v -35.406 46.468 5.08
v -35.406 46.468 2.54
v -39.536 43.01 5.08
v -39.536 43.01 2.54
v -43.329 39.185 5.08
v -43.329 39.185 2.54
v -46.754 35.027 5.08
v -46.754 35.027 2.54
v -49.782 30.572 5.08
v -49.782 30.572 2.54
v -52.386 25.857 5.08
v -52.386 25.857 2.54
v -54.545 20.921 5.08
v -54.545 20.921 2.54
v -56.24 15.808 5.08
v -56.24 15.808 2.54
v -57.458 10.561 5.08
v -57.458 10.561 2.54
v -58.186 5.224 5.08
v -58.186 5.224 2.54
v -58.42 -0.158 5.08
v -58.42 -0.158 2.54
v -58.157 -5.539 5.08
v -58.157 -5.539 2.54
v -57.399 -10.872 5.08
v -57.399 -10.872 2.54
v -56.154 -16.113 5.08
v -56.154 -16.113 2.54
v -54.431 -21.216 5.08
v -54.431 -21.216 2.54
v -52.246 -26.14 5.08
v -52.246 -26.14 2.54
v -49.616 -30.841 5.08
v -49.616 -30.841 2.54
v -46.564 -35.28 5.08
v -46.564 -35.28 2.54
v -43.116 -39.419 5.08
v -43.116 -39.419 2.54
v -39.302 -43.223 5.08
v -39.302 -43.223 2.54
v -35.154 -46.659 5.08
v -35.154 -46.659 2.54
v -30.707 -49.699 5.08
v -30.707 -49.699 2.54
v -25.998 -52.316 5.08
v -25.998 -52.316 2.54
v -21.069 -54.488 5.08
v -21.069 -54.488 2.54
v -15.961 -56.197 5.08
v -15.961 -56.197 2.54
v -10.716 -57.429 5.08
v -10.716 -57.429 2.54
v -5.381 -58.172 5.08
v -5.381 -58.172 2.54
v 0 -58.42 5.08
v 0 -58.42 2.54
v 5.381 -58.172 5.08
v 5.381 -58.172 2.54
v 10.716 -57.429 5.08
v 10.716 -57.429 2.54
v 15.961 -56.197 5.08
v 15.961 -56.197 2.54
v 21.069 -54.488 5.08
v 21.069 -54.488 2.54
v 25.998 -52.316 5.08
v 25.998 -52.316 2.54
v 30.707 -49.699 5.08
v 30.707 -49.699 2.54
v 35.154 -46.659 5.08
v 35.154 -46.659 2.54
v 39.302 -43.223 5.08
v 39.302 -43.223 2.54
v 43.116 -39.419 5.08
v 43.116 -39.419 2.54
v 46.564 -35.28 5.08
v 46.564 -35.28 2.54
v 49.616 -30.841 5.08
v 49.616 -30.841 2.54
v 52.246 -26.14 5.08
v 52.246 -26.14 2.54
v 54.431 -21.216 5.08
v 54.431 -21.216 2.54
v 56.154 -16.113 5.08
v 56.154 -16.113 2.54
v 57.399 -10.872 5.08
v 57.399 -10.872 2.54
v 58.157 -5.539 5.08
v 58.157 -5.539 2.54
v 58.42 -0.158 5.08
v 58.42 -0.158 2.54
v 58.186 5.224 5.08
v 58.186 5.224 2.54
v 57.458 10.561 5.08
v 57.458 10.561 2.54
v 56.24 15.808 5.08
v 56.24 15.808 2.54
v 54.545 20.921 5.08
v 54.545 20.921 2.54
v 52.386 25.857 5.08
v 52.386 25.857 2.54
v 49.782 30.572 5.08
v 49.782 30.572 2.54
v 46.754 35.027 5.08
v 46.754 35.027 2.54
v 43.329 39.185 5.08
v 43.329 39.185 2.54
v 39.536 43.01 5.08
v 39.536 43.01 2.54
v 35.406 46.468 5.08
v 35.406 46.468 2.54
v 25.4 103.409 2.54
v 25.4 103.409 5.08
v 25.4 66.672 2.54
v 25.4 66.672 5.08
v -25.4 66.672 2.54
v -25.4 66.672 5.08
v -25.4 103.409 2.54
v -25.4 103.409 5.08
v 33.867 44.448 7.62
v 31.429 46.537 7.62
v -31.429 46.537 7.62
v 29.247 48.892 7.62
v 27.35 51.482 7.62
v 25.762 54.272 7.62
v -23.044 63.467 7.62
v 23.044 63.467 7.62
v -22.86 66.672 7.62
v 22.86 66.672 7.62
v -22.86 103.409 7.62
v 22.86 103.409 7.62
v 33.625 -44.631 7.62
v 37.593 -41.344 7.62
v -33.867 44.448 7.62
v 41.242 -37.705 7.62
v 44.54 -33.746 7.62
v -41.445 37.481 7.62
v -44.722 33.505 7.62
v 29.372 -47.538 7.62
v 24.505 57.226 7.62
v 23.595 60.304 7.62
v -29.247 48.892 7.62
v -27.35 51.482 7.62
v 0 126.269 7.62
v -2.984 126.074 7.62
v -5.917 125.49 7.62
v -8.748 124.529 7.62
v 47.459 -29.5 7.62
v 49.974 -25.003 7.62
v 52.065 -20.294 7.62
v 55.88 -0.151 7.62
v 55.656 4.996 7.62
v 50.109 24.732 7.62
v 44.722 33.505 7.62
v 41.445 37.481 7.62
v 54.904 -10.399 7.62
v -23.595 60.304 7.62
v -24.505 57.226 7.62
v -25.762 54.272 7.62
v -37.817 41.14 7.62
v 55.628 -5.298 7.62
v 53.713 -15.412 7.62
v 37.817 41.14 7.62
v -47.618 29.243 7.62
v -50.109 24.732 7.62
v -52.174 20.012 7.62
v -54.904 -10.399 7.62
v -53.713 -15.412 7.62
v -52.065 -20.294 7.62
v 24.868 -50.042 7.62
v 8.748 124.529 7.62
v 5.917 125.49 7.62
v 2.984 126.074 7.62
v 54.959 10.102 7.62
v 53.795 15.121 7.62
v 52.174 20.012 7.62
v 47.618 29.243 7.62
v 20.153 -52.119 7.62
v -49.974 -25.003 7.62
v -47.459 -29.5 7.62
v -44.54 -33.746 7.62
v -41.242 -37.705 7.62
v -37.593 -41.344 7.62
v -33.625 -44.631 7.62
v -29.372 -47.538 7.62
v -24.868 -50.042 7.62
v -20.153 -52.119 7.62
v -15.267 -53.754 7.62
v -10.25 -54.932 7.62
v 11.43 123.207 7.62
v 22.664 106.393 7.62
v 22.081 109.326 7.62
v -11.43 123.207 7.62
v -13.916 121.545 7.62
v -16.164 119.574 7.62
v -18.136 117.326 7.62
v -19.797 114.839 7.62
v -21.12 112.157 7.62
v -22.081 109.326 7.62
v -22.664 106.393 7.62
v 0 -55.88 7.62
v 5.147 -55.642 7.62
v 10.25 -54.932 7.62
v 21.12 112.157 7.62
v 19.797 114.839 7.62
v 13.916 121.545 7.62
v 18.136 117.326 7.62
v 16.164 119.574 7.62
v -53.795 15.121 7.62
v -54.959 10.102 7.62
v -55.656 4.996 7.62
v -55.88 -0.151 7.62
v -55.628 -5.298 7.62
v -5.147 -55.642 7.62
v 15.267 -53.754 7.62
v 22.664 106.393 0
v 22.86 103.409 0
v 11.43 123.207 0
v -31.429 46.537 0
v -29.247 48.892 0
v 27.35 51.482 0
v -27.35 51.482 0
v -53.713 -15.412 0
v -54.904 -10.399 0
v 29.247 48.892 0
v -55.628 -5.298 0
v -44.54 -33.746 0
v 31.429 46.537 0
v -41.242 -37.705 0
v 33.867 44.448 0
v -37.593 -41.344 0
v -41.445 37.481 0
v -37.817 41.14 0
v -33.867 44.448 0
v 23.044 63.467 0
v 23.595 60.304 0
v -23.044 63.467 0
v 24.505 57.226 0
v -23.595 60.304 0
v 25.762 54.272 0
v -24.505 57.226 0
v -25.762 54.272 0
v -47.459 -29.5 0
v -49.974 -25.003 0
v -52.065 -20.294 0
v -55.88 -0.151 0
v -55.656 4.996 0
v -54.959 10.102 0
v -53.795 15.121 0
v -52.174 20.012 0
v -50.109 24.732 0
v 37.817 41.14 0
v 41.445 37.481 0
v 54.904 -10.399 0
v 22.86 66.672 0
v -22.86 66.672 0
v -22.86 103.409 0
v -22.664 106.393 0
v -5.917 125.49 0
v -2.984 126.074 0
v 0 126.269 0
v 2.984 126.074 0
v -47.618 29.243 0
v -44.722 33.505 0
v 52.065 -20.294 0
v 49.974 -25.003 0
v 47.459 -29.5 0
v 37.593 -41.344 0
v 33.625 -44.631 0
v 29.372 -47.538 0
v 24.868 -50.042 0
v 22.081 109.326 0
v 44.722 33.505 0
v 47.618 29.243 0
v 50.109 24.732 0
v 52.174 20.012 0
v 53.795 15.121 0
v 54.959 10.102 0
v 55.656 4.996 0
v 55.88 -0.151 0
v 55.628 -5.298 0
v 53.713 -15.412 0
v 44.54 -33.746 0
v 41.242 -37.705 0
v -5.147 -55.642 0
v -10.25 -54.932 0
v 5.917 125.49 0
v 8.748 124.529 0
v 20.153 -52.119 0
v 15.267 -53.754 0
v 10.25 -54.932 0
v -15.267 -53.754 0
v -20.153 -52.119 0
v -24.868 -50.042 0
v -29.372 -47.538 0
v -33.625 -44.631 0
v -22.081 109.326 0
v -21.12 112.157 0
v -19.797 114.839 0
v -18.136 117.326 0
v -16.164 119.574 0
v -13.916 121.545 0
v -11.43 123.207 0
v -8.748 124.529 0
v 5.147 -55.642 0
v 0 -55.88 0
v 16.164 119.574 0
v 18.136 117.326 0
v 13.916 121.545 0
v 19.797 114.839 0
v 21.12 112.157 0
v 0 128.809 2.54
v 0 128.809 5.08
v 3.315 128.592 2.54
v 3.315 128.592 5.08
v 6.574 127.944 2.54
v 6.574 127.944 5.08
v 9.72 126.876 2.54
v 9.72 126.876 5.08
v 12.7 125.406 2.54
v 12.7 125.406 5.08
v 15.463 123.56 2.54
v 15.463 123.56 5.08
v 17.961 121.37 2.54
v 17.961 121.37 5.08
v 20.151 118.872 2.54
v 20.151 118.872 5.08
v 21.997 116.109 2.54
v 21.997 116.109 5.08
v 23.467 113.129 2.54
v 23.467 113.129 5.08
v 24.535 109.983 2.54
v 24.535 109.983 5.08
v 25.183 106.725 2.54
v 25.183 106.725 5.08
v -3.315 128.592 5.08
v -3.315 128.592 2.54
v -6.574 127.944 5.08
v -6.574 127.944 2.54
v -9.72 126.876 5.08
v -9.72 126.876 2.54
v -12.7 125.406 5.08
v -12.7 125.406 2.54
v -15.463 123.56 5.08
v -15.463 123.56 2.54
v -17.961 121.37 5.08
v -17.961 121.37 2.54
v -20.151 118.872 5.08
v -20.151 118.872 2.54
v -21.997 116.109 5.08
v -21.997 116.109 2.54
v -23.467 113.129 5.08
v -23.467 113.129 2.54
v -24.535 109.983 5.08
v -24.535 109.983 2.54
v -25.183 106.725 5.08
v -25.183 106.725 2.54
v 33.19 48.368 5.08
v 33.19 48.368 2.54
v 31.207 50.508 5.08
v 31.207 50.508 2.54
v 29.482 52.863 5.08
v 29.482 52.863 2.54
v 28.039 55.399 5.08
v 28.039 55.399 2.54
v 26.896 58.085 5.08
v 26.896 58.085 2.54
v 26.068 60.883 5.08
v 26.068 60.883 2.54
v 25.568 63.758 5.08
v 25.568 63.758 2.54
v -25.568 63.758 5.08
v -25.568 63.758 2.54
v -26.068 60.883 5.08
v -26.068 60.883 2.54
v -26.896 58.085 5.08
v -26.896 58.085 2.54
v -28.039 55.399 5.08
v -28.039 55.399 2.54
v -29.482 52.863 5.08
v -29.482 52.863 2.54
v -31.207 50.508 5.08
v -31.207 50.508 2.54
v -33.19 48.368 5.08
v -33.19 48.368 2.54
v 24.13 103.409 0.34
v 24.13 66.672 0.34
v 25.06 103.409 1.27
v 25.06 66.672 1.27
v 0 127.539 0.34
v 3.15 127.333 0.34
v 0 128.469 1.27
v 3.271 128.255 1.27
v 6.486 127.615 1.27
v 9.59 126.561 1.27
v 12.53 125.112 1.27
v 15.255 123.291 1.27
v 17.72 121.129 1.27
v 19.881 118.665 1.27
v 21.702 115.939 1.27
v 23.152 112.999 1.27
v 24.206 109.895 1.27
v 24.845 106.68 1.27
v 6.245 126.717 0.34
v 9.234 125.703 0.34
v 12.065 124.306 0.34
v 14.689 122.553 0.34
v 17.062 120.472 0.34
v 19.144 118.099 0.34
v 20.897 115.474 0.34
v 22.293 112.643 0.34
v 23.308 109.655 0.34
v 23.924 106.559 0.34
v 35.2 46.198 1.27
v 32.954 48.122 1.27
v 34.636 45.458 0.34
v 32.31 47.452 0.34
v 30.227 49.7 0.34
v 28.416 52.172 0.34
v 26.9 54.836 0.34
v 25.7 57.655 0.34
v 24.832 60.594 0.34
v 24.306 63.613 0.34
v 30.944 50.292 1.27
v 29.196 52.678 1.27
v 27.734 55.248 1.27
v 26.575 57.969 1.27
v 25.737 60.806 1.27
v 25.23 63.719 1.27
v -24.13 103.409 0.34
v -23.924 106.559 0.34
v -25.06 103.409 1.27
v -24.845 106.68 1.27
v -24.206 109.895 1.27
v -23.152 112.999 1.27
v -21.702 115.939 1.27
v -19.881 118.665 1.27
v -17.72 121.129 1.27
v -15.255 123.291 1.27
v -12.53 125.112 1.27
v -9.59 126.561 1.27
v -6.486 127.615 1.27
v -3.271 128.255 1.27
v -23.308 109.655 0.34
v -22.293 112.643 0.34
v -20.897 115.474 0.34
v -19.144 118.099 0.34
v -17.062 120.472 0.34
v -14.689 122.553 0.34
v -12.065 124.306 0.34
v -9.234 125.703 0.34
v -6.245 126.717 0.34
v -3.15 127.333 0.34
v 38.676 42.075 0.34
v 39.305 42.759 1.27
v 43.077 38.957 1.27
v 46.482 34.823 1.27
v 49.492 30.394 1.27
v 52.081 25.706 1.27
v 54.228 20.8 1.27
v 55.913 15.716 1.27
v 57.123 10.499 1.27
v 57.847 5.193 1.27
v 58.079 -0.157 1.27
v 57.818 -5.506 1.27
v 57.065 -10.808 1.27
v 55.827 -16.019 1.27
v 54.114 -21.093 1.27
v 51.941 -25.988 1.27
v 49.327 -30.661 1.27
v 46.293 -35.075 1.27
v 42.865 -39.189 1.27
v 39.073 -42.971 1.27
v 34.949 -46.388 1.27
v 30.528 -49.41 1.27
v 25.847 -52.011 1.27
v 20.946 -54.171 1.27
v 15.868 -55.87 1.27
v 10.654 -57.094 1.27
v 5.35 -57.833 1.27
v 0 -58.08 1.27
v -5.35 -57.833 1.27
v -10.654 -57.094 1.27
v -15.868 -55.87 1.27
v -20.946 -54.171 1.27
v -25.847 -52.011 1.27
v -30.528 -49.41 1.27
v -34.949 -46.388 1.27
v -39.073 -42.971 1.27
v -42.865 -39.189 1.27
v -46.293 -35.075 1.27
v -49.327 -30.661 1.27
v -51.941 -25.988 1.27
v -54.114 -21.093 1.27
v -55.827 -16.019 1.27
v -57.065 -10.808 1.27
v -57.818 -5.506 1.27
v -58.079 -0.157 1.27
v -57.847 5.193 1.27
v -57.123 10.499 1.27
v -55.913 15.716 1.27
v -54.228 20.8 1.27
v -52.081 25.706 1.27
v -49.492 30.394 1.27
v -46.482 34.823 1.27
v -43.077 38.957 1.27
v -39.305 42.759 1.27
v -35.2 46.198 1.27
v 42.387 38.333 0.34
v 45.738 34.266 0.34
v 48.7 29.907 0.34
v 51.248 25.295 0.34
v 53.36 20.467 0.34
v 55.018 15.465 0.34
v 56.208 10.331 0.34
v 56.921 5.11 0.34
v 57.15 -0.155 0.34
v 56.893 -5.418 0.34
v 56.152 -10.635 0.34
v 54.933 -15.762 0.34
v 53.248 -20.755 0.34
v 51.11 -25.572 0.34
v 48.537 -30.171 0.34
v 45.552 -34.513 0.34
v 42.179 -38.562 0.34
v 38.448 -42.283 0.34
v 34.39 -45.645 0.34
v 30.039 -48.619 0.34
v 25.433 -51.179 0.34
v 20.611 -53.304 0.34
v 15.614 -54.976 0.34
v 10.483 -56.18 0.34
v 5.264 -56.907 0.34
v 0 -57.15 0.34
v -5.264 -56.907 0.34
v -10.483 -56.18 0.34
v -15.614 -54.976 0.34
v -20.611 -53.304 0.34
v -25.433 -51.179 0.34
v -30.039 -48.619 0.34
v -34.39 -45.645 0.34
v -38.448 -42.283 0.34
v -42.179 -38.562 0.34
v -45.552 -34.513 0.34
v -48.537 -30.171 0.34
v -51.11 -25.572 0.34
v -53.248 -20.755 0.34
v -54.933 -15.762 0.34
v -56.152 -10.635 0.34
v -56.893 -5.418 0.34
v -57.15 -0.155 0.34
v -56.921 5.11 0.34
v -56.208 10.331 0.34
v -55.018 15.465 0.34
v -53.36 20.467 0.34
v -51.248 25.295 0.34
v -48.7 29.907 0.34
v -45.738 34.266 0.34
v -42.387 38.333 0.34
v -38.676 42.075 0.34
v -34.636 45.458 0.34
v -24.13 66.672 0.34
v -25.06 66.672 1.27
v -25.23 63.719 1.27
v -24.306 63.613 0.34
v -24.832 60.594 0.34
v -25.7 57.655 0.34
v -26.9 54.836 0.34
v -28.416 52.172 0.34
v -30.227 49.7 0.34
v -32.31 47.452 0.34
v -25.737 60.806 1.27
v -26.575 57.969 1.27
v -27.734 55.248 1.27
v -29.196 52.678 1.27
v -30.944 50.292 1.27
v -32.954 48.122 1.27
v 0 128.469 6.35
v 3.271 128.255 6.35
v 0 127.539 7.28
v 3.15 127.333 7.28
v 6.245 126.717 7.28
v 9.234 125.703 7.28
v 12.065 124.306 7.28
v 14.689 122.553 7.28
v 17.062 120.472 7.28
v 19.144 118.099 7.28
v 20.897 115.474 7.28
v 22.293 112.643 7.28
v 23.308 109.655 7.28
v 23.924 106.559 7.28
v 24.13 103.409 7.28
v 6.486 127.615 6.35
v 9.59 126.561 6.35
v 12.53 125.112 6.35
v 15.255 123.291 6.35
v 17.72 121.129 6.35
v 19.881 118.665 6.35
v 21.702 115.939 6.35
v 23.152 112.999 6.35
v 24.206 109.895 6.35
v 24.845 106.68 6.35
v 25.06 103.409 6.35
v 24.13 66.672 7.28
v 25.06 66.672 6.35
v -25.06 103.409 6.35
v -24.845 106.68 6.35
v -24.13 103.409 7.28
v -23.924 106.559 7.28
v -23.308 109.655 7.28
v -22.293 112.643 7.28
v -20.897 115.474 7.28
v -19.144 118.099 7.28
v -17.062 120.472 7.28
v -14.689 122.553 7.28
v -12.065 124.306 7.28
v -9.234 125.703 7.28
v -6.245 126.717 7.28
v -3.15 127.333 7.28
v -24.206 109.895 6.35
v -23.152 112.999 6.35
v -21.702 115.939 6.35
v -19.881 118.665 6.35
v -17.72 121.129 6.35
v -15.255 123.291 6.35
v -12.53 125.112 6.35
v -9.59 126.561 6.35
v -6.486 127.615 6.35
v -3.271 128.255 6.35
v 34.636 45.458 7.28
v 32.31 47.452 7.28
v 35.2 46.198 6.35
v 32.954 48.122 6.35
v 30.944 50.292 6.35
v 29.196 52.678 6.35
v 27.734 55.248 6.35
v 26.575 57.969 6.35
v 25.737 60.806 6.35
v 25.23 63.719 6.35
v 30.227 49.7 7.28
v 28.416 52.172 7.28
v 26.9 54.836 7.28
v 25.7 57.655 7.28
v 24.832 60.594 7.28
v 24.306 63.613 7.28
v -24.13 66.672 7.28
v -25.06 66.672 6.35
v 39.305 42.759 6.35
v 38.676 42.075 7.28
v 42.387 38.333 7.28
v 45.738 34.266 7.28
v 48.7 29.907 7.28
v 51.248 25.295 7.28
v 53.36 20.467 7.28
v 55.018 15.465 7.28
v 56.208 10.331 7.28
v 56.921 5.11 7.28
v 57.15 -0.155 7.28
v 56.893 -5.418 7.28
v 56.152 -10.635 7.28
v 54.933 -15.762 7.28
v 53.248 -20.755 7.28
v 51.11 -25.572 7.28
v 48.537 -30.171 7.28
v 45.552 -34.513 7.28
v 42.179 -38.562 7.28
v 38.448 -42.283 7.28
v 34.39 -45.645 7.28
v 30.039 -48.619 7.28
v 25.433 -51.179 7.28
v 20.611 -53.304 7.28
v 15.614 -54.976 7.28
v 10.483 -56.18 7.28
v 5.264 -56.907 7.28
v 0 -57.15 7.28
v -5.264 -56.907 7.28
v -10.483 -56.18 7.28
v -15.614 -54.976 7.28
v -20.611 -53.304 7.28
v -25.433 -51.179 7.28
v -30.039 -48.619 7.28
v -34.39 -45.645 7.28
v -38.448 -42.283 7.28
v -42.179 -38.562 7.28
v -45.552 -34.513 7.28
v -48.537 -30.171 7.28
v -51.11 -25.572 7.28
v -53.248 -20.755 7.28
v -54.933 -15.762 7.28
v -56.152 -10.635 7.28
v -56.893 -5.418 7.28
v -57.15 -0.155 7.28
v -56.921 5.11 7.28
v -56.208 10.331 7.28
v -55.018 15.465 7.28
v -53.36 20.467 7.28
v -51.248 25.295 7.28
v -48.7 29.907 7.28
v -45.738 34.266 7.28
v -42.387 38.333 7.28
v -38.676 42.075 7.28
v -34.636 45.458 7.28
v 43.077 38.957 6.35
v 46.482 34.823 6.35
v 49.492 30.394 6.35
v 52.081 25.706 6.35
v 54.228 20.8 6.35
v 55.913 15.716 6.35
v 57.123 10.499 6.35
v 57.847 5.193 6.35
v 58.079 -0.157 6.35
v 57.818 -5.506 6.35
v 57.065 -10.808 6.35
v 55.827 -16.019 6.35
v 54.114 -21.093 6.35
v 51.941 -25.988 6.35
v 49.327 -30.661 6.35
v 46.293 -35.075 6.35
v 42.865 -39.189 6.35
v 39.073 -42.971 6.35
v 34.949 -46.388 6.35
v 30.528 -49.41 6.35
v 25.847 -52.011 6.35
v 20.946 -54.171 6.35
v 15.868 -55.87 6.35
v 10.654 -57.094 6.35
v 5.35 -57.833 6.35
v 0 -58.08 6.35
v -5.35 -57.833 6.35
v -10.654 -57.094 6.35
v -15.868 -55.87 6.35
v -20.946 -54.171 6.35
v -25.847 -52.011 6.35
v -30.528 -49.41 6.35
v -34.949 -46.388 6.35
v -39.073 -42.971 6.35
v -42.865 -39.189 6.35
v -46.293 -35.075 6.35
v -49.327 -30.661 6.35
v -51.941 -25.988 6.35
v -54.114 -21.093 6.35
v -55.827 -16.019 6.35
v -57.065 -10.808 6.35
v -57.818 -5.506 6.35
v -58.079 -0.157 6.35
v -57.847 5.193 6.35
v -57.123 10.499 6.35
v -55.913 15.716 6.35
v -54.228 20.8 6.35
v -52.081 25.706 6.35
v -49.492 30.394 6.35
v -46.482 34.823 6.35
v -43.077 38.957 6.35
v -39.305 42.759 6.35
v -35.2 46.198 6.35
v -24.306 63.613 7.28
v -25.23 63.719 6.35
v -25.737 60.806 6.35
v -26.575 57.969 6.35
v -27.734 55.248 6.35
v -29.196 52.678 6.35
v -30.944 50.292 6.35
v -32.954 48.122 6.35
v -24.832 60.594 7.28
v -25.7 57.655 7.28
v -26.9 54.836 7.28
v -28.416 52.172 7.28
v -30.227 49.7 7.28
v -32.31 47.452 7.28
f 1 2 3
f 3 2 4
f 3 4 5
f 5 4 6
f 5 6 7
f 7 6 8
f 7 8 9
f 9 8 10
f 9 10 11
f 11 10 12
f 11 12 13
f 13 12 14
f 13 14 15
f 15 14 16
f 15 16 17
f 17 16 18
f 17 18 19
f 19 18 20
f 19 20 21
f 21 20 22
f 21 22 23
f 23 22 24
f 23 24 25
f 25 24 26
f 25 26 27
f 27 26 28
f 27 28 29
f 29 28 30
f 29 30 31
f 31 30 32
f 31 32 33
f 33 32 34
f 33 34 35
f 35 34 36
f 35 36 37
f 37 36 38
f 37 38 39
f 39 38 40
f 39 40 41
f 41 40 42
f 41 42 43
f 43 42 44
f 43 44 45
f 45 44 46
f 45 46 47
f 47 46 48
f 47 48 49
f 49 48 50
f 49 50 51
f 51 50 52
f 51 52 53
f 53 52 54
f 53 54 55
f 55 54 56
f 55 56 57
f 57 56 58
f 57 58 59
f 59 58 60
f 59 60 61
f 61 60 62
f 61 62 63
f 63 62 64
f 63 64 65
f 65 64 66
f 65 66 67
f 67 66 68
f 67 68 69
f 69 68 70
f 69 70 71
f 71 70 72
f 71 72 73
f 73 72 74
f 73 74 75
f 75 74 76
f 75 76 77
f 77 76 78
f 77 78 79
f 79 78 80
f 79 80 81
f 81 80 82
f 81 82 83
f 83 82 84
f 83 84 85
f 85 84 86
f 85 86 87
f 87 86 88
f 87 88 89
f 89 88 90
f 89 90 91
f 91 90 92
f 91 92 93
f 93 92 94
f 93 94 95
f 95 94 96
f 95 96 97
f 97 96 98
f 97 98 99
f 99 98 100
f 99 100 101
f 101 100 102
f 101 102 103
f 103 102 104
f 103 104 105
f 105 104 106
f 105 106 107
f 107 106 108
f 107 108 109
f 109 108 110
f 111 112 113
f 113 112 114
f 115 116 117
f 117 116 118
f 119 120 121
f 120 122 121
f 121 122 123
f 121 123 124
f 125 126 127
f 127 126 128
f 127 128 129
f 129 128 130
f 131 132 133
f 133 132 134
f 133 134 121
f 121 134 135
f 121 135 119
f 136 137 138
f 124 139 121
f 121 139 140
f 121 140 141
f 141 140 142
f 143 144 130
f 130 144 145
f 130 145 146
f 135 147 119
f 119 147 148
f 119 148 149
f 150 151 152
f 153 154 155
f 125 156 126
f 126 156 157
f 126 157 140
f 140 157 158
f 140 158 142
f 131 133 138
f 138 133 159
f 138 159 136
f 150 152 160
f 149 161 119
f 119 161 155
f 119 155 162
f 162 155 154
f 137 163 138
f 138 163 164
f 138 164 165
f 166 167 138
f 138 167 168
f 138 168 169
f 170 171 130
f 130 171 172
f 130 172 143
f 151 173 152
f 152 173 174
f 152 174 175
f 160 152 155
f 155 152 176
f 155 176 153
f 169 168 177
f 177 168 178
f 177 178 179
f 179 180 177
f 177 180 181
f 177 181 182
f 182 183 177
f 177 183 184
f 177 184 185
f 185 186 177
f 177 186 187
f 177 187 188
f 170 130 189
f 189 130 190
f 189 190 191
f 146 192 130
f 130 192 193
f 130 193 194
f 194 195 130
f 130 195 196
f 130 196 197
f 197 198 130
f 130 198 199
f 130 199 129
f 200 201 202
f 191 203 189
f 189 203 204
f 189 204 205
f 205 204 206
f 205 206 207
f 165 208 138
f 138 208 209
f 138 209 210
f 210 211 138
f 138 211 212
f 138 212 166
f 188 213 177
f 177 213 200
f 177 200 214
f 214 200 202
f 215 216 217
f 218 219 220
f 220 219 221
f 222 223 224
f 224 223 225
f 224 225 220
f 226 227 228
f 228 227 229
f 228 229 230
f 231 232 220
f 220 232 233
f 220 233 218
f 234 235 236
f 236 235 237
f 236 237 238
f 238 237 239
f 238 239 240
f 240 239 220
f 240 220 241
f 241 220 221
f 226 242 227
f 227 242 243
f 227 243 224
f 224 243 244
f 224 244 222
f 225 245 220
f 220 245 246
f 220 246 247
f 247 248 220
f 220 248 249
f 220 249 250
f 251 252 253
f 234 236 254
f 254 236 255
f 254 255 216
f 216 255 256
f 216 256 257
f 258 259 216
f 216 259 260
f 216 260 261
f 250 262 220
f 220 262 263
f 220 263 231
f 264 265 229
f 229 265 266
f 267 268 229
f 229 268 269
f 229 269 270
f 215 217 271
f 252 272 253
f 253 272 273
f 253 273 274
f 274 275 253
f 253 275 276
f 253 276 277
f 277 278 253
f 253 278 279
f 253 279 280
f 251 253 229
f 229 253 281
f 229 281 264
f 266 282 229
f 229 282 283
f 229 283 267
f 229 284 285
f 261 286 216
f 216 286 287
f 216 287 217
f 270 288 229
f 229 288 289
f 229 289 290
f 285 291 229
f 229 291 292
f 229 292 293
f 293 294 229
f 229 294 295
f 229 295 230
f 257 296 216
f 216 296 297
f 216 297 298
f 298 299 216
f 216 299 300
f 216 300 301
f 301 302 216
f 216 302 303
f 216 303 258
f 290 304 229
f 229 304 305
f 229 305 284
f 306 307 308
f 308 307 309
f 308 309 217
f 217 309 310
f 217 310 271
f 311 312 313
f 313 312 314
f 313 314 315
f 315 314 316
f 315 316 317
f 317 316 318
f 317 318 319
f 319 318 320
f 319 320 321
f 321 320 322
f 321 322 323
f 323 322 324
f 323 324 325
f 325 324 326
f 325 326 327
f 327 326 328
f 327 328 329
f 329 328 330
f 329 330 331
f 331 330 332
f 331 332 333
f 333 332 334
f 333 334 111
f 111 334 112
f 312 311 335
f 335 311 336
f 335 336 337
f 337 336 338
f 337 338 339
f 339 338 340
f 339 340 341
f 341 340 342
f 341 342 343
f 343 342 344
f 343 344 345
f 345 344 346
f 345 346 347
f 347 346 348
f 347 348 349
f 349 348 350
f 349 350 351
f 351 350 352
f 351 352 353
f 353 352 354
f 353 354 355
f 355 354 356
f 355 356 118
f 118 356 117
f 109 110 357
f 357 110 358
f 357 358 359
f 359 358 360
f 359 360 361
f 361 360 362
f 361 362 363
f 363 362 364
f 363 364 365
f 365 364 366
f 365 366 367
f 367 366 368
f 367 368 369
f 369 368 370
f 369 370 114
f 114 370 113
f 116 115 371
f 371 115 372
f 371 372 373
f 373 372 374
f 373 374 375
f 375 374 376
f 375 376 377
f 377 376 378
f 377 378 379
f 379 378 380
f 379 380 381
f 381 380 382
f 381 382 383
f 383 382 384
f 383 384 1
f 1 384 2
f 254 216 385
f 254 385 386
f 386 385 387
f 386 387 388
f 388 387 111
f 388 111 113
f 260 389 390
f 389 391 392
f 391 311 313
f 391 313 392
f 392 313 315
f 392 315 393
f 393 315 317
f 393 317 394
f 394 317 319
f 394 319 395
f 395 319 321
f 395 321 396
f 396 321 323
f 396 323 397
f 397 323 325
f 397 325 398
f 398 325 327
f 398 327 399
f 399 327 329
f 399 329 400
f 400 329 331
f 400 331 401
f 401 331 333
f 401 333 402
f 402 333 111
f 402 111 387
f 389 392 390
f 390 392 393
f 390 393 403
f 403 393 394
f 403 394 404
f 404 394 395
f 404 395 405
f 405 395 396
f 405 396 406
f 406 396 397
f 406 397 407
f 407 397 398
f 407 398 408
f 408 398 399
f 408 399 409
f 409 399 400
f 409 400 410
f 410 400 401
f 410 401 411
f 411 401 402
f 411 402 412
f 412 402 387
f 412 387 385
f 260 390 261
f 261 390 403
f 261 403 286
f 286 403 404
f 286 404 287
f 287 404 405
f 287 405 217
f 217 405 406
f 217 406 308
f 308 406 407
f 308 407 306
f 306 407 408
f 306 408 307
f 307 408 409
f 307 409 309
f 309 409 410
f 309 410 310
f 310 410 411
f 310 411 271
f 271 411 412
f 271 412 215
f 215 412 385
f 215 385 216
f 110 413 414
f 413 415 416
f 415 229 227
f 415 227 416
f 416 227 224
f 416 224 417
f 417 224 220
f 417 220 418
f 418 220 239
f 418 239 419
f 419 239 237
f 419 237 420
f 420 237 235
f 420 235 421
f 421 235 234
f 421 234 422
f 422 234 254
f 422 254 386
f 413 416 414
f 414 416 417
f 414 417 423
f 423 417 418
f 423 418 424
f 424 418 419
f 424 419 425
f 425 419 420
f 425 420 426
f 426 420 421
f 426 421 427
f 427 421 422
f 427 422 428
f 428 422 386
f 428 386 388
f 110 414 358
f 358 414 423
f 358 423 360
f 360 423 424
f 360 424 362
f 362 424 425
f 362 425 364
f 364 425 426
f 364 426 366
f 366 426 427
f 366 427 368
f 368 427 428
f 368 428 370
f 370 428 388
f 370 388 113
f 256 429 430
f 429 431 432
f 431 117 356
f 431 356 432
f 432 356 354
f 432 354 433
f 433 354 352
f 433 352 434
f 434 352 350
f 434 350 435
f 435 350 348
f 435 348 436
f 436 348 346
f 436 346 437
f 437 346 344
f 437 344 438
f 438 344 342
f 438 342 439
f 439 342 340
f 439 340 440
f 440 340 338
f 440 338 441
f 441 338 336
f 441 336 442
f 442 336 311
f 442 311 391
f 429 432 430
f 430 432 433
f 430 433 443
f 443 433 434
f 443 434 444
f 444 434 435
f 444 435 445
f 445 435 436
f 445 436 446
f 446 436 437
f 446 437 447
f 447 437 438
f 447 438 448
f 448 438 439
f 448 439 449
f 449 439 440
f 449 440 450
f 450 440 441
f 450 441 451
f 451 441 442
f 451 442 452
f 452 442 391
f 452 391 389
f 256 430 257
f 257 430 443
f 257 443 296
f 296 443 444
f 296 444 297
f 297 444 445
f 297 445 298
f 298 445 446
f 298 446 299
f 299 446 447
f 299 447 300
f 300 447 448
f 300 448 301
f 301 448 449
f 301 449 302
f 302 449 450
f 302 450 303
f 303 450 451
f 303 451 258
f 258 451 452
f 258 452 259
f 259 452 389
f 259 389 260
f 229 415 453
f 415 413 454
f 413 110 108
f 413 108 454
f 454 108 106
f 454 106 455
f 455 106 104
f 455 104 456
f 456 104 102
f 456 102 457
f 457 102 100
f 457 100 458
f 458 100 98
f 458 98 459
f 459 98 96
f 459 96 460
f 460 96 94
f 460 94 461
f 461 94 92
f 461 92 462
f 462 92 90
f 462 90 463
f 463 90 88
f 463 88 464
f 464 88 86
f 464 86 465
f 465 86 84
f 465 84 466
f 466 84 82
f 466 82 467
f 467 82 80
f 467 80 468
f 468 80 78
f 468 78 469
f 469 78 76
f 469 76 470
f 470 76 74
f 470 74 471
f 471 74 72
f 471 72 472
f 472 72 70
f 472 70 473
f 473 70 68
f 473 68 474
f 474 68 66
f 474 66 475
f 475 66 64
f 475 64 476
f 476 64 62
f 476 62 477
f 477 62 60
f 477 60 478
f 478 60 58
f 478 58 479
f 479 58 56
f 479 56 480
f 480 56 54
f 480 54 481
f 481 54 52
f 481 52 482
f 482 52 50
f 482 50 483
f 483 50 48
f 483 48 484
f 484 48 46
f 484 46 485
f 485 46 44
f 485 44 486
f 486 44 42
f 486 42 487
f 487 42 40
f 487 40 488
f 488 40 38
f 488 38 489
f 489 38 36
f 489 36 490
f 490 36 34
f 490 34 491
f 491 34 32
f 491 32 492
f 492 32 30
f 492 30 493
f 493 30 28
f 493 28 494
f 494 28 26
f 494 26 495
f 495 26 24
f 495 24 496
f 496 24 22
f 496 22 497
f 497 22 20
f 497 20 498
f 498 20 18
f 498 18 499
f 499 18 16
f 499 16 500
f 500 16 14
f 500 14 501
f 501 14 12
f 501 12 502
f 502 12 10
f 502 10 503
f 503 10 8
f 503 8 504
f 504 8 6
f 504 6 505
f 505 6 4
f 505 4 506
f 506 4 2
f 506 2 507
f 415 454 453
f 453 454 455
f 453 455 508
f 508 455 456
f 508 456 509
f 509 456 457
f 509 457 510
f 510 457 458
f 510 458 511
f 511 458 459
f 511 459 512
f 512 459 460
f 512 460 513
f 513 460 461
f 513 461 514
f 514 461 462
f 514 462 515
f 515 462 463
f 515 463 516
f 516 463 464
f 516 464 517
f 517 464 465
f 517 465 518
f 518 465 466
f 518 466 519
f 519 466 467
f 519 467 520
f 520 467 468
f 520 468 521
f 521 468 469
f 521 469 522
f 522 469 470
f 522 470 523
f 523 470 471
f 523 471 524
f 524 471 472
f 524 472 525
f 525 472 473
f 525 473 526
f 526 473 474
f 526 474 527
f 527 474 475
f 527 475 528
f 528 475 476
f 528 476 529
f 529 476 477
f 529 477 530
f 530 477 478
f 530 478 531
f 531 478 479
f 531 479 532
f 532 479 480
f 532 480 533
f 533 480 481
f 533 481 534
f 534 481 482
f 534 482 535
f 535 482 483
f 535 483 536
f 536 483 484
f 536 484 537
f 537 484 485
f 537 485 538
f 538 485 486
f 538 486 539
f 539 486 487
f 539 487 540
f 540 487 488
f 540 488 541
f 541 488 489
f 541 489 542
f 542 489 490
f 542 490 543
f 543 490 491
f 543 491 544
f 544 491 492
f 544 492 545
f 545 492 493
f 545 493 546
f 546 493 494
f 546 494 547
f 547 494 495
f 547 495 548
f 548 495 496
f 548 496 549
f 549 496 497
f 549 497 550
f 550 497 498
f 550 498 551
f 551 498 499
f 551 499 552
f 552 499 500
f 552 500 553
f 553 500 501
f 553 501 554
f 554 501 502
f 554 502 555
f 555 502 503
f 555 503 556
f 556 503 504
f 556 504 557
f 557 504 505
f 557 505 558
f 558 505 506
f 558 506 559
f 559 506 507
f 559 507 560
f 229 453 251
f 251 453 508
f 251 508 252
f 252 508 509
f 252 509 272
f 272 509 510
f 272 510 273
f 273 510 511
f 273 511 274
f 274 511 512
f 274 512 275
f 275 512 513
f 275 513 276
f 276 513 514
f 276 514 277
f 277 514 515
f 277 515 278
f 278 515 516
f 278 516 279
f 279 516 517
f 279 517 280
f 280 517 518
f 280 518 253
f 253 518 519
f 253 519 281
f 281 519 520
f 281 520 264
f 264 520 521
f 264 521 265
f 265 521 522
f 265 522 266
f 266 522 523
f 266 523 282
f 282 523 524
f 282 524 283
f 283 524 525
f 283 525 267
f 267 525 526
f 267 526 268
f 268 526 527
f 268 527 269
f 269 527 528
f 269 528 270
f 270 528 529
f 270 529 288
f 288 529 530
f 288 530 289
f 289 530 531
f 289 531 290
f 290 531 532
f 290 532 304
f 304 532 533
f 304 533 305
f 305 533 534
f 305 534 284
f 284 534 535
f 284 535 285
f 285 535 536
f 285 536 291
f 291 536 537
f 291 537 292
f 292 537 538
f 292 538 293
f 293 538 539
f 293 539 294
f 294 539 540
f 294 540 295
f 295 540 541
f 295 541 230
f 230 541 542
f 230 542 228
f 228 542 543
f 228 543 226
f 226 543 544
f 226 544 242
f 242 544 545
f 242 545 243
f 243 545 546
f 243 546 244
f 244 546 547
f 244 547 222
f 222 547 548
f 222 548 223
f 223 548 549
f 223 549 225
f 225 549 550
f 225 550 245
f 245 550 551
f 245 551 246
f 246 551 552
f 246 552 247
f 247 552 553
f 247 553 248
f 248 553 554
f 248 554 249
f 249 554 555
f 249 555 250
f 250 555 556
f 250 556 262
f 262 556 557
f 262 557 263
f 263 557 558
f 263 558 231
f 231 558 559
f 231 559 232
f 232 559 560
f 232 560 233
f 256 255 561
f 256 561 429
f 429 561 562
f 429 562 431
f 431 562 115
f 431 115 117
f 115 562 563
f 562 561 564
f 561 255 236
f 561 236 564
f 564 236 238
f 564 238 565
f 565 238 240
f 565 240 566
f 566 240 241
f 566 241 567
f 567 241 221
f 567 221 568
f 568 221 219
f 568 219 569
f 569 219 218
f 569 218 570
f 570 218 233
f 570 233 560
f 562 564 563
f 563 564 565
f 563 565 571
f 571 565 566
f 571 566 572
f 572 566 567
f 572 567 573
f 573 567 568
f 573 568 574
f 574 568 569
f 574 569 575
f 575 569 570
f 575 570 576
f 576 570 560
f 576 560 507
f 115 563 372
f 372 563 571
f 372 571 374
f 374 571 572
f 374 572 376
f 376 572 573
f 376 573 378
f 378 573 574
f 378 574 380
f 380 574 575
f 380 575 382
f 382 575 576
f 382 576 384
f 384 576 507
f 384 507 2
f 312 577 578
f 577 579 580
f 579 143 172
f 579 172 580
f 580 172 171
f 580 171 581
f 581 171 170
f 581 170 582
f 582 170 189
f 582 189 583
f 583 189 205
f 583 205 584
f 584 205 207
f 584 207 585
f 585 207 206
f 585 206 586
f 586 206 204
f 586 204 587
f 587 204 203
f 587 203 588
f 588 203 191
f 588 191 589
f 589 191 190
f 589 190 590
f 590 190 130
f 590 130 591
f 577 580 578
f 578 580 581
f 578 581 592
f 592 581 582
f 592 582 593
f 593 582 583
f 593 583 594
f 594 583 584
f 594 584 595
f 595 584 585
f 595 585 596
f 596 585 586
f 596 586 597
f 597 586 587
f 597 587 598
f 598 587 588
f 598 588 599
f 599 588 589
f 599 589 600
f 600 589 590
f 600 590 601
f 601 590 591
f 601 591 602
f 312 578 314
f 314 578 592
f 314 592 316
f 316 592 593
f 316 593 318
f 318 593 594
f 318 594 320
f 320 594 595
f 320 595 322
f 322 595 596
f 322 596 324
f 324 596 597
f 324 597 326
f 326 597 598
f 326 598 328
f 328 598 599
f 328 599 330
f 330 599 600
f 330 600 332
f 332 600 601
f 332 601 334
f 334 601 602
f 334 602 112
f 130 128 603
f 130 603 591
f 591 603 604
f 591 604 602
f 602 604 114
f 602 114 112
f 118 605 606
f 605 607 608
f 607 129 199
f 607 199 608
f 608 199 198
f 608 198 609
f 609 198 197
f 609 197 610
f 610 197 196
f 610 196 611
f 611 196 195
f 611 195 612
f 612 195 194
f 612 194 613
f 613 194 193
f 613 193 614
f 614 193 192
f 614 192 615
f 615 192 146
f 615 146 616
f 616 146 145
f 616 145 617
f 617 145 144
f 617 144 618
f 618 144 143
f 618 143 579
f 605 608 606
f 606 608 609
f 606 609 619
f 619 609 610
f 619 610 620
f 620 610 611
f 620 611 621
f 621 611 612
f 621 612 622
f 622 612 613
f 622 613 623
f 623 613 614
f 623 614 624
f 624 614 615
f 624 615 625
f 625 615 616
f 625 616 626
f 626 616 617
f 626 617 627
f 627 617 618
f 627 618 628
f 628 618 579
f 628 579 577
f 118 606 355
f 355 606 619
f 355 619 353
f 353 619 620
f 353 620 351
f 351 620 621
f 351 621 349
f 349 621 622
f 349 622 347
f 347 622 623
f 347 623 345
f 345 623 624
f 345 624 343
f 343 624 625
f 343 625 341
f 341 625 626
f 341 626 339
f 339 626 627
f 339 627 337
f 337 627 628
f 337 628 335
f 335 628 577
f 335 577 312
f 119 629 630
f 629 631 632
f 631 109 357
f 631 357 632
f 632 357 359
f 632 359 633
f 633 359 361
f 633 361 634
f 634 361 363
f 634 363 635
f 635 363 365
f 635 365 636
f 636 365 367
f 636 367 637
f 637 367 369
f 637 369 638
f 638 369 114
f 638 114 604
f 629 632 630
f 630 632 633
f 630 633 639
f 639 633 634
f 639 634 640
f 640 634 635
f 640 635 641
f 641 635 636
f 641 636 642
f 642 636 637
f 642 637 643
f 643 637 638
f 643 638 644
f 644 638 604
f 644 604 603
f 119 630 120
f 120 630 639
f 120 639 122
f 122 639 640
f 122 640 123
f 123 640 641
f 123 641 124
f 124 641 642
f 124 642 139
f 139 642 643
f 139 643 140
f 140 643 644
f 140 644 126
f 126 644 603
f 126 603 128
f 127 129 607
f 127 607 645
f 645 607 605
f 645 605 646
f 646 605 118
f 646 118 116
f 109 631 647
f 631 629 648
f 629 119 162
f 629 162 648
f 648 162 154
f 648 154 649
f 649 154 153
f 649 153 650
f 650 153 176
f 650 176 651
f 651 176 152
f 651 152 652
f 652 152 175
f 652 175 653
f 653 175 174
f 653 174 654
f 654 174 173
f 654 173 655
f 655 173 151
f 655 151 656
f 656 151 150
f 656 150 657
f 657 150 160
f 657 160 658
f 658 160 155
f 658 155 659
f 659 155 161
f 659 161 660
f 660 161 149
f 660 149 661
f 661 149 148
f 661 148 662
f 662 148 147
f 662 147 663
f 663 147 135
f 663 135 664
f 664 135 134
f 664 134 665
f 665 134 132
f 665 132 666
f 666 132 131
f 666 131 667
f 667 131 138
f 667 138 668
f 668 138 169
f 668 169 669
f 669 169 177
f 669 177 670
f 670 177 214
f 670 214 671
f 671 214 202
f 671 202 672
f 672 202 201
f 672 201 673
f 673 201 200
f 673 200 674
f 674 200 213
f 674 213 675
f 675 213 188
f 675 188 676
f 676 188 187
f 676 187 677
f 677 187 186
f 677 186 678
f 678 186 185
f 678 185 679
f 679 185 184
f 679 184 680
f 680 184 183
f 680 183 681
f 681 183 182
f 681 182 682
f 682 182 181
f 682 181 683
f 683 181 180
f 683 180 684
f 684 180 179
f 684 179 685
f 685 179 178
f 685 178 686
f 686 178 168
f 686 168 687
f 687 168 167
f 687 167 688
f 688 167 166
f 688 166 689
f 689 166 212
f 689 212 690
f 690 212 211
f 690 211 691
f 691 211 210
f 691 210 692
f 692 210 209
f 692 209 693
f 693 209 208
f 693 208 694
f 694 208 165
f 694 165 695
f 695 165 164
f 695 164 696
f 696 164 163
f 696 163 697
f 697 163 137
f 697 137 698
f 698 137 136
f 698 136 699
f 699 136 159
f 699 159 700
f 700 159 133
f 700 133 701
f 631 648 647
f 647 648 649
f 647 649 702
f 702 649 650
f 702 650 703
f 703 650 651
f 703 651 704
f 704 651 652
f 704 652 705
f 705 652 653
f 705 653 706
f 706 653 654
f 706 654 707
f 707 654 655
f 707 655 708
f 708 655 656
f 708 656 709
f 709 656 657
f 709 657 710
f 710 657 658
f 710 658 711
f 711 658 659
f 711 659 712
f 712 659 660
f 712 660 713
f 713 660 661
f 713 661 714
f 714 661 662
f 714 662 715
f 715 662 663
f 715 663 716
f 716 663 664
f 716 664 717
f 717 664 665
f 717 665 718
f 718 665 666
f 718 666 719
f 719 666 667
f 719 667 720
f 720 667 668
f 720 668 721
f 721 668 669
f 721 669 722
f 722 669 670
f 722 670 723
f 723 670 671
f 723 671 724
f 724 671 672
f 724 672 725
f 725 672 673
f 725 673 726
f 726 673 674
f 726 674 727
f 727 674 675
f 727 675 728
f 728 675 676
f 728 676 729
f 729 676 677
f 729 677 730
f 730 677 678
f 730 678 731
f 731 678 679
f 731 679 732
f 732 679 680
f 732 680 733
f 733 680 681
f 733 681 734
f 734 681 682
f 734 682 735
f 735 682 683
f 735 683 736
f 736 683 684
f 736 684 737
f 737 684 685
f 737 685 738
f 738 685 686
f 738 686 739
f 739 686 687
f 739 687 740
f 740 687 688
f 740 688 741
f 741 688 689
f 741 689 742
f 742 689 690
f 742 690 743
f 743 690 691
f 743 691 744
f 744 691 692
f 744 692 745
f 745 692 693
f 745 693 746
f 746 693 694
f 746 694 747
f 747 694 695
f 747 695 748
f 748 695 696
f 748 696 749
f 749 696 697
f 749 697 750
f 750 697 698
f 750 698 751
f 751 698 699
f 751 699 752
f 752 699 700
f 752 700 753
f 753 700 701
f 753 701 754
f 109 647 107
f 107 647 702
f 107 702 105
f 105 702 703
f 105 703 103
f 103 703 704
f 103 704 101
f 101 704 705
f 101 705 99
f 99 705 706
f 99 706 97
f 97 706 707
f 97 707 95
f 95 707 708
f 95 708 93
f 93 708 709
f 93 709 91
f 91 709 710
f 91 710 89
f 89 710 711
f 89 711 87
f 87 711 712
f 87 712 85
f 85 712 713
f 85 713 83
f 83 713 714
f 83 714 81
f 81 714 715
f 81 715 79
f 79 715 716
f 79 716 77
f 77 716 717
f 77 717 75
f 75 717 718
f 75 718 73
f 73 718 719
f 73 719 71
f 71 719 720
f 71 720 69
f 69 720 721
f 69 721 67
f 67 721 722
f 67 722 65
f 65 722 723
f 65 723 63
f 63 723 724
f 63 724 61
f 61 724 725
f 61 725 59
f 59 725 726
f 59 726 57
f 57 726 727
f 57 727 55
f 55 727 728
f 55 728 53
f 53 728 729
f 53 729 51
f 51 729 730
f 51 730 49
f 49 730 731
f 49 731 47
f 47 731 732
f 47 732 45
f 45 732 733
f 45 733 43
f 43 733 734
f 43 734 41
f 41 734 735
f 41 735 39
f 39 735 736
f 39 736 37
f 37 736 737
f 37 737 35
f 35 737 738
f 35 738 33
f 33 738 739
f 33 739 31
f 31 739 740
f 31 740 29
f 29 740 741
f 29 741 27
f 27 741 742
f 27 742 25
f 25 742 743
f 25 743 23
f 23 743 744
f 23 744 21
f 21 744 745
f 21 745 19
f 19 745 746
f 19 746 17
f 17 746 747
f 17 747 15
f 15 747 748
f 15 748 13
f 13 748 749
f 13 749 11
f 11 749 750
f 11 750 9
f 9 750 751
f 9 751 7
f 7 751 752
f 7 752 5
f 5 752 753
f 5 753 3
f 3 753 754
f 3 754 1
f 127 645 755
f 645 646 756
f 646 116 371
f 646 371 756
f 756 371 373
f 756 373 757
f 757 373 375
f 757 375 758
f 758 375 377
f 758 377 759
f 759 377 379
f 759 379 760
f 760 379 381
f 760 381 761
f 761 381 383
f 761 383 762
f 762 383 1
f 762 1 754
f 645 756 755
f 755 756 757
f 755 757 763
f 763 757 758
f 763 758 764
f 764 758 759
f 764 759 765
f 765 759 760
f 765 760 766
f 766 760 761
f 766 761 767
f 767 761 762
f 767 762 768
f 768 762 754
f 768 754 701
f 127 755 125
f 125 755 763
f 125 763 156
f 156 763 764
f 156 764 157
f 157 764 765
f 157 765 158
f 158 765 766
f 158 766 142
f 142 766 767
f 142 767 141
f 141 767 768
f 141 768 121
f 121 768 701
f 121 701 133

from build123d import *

# Parameters (mm, degrees)
SKETCH1_R           = 58.42
BOSS_EXTRUDE1_DEPTH = 7.62
FILLET1_R           = 25.4
FILLET2_R           = 25.4
FILLET3_R           = 2.54


with BuildPart() as part:
    # Sketch1 → Boss-Extrude1 (new body)
    with BuildSketch(Plane.XY):
        Circle(SKETCH1_R)
        with BuildLine():
            Line((25.4, 52.60928055), (25.4, 128.80928055))
            Line((25.4, 128.80928055), (-25.4, 128.80928055))
            Line((-25.4, 128.80928055), (-25.4, 52.60928055))
            ThreePointArc((-25.4, 52.60928055), (0, 58.42), (25.4, 52.60928055))
        make_face()
    extrude(amount=BOSS_EXTRUDE1_DEPTH)

    # Fillet1
    fillet1_edges = [part.edges().sort_by_distance(p)[0] for p in [
        (-25.4, 128.80928055, 3.81),
        (25.4, 128.80928055, 3.81),
    ]]
    fillet(fillet1_edges, radius=FILLET1_R - 0.0001)  # a hair under: the kernel refuses the full size

    # Fillet2
    fillet2_edges = [part.edges().sort_by_distance(p)[0] for p in [
        (-25.4, 52.60928055, 3.81),
        (25.4, 52.60928055, 3.81),
    ]]
    fillet(fillet2_edges, radius=FILLET2_R)

    # Fillet3
    fillet3_edges = [part.edges().sort_by_distance(p)[0] for p in [
        (-25.4, 85.040678336, 0),
        (-25.4, 85.040678336, 7.62),
        (25.4, 85.040678336, 0),
        (17.960541531, 121.369822082, 0),
        (-17.960541531, 121.369822082, 0),
        (25.4, 85.040678336, 7.62),
        (17.960541531, 121.369822082, 7.62),
        (-17.960541531, 121.369822082, 7.62),
        (0, -58.42, 0),
        (0, -58.42, 7.62),
        (28.038562649, 55.399133992, 0),
        (28.038562649, 55.399133992, 7.62),
        (-28.038562649, 55.399133992, 0),
        (-28.038562649, 55.399133992, 7.62),
    ]]
    fillet(fillet3_edges, radius=FILLET3_R)


solid = part.part
